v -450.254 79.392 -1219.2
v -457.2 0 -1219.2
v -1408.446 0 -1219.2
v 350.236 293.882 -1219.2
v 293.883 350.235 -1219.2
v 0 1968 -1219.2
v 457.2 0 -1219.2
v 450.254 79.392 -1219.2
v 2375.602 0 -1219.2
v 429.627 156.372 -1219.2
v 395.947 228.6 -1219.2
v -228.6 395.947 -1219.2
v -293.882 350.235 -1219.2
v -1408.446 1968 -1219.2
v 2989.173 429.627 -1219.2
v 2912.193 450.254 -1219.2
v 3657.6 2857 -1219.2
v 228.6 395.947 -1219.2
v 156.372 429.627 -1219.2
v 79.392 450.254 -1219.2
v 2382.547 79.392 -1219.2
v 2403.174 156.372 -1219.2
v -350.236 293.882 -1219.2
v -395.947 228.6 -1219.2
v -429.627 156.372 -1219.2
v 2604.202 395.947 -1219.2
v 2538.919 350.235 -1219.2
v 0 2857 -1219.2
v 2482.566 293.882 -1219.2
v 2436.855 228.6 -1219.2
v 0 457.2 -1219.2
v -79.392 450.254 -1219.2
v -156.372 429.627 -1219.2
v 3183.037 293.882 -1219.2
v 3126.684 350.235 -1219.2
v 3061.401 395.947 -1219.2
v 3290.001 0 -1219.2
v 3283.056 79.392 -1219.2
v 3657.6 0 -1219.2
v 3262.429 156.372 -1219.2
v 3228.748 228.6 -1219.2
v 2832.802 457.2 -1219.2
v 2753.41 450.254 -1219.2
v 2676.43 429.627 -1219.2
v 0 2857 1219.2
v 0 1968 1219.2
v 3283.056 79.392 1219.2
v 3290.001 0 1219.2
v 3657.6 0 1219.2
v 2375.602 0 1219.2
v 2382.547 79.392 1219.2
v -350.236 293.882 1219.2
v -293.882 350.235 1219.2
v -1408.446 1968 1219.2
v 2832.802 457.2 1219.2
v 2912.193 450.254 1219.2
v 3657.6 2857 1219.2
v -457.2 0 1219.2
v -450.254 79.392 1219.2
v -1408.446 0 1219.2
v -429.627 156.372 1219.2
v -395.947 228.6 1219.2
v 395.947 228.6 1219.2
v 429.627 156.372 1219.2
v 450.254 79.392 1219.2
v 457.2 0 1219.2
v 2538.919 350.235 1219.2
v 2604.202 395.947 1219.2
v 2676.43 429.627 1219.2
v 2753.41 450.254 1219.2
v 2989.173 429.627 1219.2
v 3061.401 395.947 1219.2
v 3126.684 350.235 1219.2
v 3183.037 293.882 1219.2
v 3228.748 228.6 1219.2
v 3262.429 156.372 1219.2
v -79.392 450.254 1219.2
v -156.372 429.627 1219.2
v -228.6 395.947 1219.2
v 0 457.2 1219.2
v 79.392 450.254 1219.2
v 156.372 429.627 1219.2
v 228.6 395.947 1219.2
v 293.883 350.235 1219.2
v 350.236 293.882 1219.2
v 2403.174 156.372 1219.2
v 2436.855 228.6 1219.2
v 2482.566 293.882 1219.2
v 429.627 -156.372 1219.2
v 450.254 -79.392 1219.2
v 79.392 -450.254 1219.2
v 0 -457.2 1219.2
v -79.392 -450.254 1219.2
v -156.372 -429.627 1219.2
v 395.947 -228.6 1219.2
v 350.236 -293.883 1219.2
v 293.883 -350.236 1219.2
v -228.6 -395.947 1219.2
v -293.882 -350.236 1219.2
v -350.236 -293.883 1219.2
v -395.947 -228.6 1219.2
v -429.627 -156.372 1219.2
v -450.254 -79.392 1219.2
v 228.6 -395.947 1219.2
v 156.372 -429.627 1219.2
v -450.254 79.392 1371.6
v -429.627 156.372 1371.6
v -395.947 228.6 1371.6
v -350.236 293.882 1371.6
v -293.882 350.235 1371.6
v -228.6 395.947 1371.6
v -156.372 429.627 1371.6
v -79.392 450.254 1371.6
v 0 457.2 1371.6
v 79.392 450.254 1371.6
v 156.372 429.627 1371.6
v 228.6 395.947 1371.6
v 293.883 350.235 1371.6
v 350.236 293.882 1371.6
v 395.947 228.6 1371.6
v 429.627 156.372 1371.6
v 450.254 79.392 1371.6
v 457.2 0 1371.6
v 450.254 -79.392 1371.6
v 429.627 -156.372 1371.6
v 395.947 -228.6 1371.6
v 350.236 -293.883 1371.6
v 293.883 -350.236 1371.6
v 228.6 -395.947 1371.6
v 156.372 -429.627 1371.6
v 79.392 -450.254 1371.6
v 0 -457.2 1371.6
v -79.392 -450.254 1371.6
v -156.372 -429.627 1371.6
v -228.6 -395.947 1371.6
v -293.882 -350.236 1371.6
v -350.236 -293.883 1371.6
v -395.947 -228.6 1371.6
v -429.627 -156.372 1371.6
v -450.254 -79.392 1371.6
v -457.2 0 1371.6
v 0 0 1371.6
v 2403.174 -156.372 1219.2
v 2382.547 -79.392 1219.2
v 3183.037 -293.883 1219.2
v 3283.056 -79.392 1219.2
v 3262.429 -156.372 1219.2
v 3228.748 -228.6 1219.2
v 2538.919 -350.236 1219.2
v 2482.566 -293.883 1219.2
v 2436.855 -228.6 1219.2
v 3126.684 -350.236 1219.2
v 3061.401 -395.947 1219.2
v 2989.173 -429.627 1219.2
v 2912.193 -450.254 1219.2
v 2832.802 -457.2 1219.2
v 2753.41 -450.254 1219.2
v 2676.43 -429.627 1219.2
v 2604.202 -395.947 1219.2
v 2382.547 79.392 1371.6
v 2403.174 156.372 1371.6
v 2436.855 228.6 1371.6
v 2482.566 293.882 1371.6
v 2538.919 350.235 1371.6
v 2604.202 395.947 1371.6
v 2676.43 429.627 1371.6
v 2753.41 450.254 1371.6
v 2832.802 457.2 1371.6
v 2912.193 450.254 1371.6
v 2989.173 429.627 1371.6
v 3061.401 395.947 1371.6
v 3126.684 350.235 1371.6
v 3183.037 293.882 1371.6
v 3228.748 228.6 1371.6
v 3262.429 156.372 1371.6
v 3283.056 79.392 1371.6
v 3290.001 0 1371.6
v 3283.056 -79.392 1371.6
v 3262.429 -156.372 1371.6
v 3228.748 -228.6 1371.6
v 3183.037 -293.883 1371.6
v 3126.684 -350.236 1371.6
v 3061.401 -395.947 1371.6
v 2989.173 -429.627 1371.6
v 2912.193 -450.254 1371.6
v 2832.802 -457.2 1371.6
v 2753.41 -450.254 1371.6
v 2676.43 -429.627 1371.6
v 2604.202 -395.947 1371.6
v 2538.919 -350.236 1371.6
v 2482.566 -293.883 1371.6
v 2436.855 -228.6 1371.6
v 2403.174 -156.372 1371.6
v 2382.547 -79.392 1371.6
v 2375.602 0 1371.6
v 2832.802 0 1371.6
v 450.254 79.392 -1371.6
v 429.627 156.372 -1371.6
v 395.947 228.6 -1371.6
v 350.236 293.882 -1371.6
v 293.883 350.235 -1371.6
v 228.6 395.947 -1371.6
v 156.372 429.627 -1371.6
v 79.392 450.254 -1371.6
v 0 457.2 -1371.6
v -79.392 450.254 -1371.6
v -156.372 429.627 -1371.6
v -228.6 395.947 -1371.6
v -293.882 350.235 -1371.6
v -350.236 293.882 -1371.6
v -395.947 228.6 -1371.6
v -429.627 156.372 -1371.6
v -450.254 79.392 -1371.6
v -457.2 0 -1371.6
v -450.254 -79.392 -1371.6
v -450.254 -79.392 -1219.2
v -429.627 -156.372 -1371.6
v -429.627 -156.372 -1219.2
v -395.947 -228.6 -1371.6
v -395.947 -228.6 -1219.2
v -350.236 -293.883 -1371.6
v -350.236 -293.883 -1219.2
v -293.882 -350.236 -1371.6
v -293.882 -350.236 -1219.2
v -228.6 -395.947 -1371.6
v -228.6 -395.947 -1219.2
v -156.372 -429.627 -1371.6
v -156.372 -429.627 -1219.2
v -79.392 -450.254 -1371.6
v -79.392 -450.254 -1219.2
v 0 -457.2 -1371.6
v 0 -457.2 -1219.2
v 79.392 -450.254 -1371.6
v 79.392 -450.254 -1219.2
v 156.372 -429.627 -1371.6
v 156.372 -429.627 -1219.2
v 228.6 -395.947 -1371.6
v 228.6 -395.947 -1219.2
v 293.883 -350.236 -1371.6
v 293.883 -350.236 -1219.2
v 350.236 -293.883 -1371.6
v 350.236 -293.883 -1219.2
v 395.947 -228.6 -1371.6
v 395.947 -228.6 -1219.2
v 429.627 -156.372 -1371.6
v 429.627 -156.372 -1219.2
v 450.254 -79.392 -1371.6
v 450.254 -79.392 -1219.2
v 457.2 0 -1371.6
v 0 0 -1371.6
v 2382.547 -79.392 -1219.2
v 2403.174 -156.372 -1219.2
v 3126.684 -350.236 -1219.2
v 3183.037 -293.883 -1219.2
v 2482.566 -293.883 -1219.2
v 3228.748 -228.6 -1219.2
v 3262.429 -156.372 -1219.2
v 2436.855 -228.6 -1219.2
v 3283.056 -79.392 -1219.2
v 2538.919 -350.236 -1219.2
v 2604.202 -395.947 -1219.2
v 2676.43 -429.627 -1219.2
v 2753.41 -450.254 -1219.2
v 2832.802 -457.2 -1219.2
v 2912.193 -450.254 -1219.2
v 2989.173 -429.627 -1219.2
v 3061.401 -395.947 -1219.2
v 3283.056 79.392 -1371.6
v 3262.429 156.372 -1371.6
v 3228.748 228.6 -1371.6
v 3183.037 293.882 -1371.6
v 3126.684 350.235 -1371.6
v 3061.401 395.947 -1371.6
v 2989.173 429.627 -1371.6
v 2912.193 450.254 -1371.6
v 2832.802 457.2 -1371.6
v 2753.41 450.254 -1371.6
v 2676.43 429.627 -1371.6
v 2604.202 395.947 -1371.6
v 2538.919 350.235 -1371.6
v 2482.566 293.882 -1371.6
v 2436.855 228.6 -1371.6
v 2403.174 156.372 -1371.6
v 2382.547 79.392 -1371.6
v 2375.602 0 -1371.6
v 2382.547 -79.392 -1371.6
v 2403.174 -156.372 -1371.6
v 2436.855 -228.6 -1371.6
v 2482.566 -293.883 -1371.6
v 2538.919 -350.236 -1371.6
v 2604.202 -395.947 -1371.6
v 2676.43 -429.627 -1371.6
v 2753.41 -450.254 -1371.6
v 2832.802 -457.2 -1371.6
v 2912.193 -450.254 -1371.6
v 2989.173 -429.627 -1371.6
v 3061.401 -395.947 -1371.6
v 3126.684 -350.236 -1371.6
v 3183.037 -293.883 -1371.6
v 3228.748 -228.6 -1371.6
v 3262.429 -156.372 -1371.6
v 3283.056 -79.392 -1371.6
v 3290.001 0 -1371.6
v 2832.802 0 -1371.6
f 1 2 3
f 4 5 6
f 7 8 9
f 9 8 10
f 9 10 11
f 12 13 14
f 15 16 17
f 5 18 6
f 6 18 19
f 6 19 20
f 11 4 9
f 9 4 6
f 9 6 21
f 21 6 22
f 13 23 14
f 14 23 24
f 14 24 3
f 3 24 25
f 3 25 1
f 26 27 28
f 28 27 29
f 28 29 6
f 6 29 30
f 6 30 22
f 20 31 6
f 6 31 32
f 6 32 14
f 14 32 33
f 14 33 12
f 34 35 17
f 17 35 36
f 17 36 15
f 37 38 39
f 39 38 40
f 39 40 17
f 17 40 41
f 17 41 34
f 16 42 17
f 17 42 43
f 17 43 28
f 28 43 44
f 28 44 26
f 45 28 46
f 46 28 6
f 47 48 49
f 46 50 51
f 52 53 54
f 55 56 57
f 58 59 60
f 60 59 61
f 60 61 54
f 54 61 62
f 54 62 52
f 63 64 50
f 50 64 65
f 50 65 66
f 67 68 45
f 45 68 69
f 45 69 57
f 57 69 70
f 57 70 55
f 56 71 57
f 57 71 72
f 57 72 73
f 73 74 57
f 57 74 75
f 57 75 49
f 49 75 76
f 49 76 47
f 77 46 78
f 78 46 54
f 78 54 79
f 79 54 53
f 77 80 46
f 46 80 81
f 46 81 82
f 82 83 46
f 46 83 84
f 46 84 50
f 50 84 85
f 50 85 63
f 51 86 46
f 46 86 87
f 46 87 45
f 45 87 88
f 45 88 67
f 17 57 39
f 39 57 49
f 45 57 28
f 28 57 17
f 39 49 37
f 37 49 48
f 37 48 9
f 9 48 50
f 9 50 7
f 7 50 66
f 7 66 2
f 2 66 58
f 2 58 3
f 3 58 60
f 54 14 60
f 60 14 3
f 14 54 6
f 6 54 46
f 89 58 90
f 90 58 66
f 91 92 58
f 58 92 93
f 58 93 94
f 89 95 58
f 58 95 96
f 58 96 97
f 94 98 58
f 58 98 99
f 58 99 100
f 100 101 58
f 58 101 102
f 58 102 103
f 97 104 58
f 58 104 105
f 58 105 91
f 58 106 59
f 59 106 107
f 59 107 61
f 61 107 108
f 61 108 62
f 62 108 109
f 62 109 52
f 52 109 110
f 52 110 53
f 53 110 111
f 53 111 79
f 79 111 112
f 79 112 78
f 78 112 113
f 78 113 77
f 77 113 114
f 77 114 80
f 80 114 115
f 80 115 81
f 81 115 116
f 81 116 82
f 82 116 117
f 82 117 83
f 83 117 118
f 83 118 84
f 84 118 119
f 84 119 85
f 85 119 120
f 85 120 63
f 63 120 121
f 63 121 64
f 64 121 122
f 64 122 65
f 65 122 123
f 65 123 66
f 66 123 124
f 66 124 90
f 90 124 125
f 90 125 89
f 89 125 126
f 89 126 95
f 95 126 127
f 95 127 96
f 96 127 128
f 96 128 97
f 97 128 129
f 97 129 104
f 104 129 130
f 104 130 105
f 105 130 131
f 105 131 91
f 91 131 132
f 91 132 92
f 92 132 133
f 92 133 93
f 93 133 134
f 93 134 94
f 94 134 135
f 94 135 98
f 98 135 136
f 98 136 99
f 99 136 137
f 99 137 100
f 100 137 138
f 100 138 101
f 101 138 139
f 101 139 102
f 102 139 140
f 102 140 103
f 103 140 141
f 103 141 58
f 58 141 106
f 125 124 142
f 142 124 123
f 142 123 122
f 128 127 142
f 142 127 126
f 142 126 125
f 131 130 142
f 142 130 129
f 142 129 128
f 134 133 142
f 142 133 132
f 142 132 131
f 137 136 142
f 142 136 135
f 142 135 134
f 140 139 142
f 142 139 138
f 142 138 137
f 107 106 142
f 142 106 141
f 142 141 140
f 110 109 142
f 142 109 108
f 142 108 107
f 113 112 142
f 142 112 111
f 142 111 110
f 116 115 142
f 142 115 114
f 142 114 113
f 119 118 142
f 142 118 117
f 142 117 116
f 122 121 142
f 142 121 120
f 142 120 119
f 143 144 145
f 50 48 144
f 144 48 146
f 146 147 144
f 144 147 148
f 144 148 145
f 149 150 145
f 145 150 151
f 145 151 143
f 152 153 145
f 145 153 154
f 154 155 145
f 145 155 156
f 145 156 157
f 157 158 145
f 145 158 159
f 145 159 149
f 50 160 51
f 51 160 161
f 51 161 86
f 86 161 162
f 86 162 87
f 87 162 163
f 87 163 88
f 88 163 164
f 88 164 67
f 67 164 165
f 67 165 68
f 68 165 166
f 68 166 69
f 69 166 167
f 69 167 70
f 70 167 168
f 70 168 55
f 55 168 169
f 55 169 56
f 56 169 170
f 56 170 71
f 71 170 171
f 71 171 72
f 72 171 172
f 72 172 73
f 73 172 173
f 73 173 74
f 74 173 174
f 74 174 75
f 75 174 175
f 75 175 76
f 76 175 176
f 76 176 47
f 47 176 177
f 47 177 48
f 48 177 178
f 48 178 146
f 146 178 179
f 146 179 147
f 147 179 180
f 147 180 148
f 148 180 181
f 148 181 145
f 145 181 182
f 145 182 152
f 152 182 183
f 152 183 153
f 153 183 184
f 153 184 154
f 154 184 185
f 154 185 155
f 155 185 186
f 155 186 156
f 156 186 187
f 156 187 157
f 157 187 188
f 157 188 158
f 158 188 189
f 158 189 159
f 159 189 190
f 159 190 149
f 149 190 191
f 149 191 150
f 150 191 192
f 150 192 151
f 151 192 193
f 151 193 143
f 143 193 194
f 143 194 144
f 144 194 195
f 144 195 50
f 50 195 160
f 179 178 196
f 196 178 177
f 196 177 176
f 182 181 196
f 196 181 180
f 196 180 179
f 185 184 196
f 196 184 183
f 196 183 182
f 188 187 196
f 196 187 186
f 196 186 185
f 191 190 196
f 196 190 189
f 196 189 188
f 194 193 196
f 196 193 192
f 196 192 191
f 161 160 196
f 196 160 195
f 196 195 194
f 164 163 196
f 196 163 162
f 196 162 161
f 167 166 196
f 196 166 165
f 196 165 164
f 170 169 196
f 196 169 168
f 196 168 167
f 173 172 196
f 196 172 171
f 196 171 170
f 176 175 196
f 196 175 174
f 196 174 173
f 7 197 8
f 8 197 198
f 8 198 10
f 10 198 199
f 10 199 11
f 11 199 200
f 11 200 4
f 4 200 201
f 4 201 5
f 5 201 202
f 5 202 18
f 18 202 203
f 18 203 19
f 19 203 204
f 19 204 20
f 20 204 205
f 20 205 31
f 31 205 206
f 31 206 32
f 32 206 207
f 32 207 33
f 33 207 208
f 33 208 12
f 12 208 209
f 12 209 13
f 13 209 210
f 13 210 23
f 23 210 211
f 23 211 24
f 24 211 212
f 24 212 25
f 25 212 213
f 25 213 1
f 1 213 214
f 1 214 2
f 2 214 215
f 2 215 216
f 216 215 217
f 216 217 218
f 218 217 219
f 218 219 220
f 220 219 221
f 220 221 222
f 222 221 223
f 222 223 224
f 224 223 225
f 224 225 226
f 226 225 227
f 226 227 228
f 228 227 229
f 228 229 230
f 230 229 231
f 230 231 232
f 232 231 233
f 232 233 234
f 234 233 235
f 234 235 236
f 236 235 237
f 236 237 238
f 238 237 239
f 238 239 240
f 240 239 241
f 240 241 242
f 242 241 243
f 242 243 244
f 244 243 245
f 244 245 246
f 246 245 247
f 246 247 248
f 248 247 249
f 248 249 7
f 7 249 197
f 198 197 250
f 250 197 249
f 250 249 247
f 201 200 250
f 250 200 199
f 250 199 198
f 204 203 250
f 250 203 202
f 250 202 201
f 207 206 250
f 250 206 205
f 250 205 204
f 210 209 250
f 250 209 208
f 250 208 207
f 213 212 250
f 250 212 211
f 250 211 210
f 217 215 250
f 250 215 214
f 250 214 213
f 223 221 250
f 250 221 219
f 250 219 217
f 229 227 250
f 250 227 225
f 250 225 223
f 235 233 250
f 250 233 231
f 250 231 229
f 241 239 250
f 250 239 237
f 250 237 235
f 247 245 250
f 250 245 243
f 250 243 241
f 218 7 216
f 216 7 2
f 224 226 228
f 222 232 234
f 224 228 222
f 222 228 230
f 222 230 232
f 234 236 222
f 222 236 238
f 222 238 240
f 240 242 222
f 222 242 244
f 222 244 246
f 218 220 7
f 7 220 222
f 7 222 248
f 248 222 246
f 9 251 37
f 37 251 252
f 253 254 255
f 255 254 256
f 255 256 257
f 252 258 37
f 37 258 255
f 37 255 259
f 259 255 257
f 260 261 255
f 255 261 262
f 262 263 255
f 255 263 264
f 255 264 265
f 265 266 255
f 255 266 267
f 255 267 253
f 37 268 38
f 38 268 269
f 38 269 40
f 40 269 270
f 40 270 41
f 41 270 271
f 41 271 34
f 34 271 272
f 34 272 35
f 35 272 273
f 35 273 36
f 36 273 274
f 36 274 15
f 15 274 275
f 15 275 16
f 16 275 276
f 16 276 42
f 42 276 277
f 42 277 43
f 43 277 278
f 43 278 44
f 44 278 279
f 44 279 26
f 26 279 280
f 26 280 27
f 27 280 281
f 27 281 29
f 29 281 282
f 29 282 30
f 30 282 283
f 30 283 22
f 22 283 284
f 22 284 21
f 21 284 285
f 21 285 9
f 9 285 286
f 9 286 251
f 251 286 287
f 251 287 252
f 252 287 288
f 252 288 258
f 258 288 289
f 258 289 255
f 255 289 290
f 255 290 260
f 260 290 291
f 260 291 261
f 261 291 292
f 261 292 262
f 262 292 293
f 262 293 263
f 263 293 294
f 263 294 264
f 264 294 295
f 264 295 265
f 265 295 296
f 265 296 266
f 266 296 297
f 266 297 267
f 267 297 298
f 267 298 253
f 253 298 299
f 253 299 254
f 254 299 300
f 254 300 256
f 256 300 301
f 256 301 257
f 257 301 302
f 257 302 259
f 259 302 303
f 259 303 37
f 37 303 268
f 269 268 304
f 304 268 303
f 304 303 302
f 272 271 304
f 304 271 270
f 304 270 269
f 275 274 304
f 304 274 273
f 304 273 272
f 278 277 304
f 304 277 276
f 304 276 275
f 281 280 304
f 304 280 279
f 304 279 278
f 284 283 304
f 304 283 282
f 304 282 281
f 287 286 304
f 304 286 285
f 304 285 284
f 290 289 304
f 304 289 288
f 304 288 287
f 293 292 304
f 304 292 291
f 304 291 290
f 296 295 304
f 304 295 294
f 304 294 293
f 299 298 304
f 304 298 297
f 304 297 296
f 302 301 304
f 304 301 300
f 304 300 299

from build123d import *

# Parameters (mm, degrees)
SKETCH1_W           = 3657.6
SKETCH1_H           = 2438.4
BOSS_EXTRUDE1_DEPTH = 2857
SKETCH2_W           = 1408.446340605
SKETCH2_H           = 2438.4
BOSS_EXTRUDE2_DEPTH = 1968
SKETCH3_R           = 457.2
BOSS_EXTRUDE3_DEPTH = 152.4


with BuildPart() as part:
    # Sketch1 → Boss-Extrude1 (new body)
    with BuildSketch(Plane(origin=(0, 0, 0), x_dir=(1, 0, 0), z_dir=(0, 1, 0))):
        with Locations((1828.8, 0)):
            Rectangle(SKETCH1_W, SKETCH1_H)
    extrude(amount=BOSS_EXTRUDE1_DEPTH)

    # Sketch2 → Boss-Extrude2 (add)
    with BuildSketch(Plane(origin=(0, 0, 0), x_dir=(1, 0, 0), z_dir=(0, 1, 0))):
        with Locations((-704.223170303, 0)):
            Rectangle(SKETCH2_W, SKETCH2_H)
    extrude(amount=BOSS_EXTRUDE2_DEPTH)

    # Sketch3 → Boss-Extrude3 (add)
    with BuildSketch(Plane.XY.offset(1219.2)):
        Circle(SKETCH3_R)
        with Locations((2832.801463022, 0)):
            Circle(SKETCH3_R)
    boss_extrude3 = extrude(amount=BOSS_EXTRUDE3_DEPTH)

    # Mirror1: Boss-Extrude3 across plane
    add(boss_extrude3.mirror(Plane.XY))


solid = part.part
